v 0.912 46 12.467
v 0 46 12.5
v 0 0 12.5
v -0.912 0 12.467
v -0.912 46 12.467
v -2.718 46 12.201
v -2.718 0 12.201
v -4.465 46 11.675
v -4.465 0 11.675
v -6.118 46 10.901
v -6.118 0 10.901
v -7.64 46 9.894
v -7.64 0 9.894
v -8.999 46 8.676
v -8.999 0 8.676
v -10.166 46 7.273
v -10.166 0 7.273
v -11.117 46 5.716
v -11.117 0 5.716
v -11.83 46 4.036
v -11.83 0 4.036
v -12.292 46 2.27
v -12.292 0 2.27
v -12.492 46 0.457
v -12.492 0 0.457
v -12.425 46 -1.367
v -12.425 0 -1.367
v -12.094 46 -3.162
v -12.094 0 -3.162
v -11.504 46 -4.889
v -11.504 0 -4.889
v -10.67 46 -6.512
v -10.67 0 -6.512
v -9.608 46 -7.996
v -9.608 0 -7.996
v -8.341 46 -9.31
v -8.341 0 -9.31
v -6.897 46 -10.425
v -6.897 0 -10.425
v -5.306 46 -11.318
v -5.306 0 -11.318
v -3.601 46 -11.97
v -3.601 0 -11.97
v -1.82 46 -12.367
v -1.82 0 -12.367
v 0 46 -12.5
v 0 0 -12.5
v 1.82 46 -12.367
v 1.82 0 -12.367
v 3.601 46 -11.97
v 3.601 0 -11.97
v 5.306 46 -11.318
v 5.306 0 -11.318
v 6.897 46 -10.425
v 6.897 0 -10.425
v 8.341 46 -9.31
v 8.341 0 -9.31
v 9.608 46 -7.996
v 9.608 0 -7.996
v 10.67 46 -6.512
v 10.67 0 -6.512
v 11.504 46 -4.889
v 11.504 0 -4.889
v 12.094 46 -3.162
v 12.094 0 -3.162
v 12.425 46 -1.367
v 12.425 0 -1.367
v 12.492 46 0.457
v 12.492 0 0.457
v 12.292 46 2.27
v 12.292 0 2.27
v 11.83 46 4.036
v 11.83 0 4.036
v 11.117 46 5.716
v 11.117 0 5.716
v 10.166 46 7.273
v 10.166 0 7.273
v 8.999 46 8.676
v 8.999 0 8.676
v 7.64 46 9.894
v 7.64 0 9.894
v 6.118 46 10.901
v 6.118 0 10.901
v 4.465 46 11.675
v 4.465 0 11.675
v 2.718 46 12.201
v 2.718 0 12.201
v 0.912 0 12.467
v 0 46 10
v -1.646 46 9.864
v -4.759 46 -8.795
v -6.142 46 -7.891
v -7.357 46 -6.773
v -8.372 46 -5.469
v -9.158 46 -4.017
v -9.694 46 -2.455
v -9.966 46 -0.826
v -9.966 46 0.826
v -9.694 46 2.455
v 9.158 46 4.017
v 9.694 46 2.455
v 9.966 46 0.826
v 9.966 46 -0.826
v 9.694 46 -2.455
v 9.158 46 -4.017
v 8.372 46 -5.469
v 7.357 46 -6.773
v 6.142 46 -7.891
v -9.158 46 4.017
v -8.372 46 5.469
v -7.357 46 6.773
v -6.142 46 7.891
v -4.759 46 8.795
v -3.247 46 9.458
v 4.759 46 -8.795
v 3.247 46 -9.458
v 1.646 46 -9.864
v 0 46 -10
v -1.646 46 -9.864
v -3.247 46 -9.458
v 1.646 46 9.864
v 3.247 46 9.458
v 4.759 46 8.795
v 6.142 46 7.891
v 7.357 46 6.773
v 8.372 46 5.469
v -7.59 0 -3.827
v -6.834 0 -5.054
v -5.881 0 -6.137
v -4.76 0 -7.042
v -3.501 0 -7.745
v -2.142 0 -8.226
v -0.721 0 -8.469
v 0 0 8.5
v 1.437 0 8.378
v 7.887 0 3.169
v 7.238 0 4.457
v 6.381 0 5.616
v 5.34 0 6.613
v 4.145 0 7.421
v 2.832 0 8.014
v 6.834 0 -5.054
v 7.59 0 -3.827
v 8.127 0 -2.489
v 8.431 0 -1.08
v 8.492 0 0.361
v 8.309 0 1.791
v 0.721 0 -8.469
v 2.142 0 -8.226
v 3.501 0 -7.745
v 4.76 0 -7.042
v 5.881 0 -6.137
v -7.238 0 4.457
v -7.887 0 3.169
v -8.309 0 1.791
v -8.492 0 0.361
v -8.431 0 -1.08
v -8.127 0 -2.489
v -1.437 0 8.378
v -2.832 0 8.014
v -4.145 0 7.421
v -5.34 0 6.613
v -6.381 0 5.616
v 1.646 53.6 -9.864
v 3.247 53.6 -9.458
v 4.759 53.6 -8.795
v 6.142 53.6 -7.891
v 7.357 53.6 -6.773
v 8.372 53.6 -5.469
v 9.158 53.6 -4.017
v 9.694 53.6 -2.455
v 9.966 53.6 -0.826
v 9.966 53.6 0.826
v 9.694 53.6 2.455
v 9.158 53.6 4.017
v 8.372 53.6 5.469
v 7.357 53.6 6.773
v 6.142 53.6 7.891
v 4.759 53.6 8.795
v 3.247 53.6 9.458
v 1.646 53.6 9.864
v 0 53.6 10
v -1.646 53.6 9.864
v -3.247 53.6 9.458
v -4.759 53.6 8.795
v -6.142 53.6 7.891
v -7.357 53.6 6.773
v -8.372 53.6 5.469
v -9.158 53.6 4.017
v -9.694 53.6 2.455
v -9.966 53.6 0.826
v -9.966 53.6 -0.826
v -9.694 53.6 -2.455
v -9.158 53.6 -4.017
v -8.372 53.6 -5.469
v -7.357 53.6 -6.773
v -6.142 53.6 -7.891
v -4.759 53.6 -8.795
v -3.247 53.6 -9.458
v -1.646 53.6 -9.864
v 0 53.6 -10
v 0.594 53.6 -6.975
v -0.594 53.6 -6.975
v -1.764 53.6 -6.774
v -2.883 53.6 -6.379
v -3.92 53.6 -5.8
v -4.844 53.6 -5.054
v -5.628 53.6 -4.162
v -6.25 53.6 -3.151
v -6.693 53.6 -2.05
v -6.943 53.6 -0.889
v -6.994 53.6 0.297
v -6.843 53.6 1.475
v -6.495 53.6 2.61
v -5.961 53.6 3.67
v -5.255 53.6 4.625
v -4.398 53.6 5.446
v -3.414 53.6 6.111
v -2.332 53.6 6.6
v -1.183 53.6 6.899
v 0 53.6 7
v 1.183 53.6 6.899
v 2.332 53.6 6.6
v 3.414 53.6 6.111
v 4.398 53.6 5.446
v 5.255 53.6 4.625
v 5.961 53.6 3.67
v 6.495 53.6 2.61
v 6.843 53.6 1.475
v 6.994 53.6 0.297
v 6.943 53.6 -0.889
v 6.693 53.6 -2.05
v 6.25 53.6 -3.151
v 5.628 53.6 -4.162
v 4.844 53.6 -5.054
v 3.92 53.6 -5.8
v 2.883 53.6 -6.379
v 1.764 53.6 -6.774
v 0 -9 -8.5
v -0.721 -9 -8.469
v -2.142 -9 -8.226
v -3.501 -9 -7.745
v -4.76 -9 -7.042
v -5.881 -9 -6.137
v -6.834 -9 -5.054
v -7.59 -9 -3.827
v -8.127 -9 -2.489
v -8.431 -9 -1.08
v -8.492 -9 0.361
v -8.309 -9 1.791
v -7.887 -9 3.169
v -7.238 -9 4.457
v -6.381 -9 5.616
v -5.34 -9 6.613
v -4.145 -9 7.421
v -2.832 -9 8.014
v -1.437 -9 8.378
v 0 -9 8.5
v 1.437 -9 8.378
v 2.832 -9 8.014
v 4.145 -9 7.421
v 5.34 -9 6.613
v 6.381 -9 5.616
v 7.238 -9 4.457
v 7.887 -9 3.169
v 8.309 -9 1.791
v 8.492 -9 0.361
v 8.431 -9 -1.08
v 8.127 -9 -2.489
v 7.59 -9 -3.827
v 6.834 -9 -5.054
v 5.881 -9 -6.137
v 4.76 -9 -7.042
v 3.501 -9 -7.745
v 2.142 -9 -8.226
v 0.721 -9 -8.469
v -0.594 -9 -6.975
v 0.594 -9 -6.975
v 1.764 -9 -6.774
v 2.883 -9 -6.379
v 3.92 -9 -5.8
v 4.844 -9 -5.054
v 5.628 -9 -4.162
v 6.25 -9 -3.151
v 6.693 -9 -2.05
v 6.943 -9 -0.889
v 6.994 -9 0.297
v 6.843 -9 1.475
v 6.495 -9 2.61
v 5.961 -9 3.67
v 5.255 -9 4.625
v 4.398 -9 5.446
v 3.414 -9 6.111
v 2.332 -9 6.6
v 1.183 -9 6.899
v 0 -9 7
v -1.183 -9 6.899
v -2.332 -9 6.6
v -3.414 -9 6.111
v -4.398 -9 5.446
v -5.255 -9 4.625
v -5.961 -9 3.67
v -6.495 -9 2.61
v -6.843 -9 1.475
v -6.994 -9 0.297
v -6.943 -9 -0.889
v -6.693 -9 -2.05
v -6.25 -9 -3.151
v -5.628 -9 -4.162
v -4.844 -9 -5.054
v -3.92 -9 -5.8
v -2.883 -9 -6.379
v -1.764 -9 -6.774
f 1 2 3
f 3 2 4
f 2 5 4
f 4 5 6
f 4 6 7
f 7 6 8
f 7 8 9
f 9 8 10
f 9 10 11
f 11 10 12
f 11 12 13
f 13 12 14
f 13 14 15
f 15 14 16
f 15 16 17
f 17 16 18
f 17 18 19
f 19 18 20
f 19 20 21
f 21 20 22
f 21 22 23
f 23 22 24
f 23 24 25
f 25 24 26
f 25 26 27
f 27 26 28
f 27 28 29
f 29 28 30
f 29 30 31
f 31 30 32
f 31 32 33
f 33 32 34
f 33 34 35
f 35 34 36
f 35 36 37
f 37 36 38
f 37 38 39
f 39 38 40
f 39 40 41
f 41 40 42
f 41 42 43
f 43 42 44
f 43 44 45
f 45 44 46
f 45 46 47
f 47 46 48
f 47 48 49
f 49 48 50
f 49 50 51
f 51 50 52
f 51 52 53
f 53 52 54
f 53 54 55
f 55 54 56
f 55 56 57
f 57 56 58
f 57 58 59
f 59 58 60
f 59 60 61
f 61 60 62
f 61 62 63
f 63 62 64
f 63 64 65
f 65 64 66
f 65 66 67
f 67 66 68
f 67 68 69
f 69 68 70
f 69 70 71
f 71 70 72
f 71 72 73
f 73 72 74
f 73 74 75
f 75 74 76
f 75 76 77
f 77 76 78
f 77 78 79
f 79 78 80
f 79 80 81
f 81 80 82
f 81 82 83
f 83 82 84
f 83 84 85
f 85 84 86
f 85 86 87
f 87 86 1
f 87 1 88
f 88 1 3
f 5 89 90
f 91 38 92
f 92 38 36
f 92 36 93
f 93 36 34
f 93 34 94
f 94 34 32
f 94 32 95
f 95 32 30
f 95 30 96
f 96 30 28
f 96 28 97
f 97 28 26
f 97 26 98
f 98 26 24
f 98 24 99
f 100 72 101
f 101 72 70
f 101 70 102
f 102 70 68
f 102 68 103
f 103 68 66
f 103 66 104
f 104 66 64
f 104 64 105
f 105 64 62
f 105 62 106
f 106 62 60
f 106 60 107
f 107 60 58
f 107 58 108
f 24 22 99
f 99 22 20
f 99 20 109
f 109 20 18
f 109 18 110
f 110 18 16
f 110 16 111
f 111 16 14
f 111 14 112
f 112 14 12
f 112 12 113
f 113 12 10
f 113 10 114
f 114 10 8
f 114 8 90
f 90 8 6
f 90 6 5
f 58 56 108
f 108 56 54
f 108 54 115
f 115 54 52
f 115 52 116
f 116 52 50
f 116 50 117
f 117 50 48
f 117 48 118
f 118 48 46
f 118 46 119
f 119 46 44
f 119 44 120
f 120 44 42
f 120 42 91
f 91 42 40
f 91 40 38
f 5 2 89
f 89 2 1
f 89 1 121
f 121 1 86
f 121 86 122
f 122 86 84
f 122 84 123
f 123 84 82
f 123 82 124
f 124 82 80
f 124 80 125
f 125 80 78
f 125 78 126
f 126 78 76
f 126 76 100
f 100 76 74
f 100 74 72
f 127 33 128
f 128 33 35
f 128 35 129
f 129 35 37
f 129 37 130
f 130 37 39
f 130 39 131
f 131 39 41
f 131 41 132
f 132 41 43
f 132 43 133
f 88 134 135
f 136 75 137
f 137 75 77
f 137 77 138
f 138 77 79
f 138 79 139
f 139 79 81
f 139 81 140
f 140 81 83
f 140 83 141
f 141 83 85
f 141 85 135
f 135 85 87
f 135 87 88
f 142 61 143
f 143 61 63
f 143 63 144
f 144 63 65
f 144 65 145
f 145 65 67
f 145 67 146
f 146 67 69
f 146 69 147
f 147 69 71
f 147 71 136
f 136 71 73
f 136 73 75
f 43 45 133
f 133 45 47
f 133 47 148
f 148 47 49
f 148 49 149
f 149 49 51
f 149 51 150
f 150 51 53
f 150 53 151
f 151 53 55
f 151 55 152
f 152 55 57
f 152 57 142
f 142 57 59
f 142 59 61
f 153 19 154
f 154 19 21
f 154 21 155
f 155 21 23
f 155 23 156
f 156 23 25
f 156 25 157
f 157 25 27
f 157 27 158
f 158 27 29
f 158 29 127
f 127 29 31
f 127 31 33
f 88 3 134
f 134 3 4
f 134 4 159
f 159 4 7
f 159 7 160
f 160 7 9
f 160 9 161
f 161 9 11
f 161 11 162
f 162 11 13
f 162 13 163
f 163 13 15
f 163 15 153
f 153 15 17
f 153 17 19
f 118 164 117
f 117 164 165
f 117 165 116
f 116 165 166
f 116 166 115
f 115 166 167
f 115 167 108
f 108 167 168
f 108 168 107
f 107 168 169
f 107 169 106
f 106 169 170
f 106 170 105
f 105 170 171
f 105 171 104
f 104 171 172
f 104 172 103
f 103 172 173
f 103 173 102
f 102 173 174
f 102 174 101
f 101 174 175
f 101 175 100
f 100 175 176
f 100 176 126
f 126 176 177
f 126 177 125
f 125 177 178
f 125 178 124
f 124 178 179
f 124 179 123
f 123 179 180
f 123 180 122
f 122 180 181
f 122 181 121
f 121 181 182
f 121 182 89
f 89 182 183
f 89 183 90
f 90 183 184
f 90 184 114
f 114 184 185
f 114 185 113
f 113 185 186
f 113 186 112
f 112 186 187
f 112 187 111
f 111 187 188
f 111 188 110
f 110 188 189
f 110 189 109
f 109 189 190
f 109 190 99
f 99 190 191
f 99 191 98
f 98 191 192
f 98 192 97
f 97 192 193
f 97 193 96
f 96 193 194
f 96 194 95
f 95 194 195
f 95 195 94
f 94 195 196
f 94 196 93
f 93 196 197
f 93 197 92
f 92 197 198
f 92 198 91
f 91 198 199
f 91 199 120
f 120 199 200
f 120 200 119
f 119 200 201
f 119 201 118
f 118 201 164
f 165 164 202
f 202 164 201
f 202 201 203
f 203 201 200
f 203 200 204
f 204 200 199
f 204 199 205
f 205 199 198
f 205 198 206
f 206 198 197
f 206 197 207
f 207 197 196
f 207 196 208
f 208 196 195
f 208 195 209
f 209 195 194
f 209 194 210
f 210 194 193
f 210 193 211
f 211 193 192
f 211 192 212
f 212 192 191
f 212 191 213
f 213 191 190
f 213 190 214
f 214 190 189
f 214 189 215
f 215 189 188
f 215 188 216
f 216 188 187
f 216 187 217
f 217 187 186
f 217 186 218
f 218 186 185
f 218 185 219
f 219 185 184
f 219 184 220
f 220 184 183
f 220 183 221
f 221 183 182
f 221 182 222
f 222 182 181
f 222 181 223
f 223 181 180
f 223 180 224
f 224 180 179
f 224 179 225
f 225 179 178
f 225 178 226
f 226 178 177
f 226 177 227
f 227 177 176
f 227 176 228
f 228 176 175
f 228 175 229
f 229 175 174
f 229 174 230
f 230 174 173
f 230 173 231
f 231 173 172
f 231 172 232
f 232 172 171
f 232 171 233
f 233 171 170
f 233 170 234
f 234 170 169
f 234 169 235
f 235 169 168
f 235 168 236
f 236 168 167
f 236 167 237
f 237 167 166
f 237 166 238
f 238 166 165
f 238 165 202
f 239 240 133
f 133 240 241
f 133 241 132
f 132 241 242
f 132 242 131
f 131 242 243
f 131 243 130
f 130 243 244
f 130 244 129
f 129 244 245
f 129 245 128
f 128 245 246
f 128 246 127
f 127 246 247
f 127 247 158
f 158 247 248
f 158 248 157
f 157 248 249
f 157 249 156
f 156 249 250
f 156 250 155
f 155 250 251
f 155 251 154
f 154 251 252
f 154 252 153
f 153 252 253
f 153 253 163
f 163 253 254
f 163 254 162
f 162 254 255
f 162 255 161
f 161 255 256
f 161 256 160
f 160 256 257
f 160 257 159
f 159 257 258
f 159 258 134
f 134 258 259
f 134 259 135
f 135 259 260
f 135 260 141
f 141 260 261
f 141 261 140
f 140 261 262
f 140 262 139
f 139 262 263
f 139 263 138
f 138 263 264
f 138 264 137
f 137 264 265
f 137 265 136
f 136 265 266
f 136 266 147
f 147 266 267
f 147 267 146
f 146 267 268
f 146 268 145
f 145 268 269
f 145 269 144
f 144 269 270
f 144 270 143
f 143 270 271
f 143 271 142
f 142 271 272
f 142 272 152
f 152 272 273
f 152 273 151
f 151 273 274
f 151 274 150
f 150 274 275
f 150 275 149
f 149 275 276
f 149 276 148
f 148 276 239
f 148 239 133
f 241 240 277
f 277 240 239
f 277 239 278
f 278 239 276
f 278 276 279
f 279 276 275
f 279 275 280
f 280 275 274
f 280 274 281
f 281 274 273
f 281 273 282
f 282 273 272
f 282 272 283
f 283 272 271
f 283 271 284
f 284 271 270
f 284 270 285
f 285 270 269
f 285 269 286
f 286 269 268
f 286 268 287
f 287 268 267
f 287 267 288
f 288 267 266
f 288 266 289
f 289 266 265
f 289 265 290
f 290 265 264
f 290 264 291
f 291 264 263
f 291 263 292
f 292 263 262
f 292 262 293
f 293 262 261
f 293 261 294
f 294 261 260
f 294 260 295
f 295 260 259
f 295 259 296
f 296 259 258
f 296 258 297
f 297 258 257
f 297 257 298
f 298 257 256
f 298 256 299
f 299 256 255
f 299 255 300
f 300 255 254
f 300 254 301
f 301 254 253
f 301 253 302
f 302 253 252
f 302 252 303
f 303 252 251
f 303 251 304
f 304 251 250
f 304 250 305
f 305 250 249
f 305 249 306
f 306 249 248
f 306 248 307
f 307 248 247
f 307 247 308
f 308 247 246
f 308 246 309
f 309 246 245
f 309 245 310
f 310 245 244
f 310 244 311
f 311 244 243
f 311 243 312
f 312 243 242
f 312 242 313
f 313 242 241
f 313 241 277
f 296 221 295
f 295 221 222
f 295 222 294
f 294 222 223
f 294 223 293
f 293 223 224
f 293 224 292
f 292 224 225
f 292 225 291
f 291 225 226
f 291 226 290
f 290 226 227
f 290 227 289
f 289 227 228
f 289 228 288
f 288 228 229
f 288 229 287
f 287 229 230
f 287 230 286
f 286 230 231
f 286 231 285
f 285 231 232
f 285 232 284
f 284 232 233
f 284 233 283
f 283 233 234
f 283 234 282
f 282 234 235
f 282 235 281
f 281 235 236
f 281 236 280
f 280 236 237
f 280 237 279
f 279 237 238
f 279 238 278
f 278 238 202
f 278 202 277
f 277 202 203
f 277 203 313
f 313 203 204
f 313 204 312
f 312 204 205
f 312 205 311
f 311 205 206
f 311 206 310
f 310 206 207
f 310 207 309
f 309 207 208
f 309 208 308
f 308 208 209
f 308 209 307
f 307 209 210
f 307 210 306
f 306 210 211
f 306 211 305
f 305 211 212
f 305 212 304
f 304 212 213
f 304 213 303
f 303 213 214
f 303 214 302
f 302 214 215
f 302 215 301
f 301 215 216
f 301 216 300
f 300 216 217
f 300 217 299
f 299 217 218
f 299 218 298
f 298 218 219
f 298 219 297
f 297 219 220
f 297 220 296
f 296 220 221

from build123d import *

# Parameters (mm, degrees)
SKETCH1_R           = 12.5
BOSS_EXTRUDE1_DEPTH = 46
SKETCH2_R           = 8.375
BOSS_EXTRUDE2_DEPTH = 4
SKETCH3_R           = 10
BOSS_EXTRUDE4_DEPTH = 7.6
SKETCH4_R           = 8.5
BOSS_EXTRUDE5_DEPTH = 9
SKETCH5_R           = 5
CUT_EXTRUDE1_DEPTH  = 66.048136022
SKETCH6_R           = 7
CUT_EXTRUDE2_DEPTH  = 66.048136022


with BuildPart() as part:
    # Sketch1 → Boss-Extrude1 (new body)
    with BuildSketch(Plane(origin=(0, 0, 0), x_dir=(1, 0, 0), z_dir=(0, 1, 0))):
        with Locations(Location((0, 0, 0), (0, 0, 270))):
            Circle(SKETCH1_R)
    extrude(amount=BOSS_EXTRUDE1_DEPTH)

    # Sketch2 → Boss-Extrude2 (add)
    with BuildSketch(Plane.XZ):
        with Locations(Location((0, 0, 0), (0, 0, 270))):
            Circle(SKETCH2_R)
    extrude(amount=BOSS_EXTRUDE2_DEPTH)

    # Sketch3 → Boss-Extrude4 (add)
    with BuildSketch(Plane(origin=(0, 46, 0), x_dir=(1, 0, 0), z_dir=(0, 1, 0))):
        with Locations(Location((0, 0, 0), (0, 0, 90))):
            Circle(SKETCH3_R)
    extrude(amount=BOSS_EXTRUDE4_DEPTH)

    # Sketch4 → Boss-Extrude5 (add)
    with BuildSketch(Plane.XZ):
        with Locations(Location((0, 0, 0), (0, 0, 90))):
            Circle(SKETCH4_R)
    extrude(amount=BOSS_EXTRUDE5_DEPTH)

    # Sketch5 → Cut-Extrude1 (cut, through all)
    with BuildSketch(Plane(origin=(0, 53.6, 0), x_dir=(1, 0, 0), z_dir=(0, 1, 0))):
        with Locations(Location((0, 0, 0), (0, 0, 270))):
            Circle(SKETCH5_R)
    extrude(amount=-CUT_EXTRUDE1_DEPTH, mode=Mode.SUBTRACT)

    # Sketch6 → Cut-Extrude2 (cut, through all)
    with BuildSketch(Plane(origin=(0, 53.6, 0), x_dir=(1, 0, 0), z_dir=(0, 1, 0))):
        with Locations(Location((0, 0, 0), (0, 0, 270))):
            Circle(SKETCH6_R)
    extrude(amount=-CUT_EXTRUDE2_DEPTH, mode=Mode.SUBTRACT)


solid = part.part
